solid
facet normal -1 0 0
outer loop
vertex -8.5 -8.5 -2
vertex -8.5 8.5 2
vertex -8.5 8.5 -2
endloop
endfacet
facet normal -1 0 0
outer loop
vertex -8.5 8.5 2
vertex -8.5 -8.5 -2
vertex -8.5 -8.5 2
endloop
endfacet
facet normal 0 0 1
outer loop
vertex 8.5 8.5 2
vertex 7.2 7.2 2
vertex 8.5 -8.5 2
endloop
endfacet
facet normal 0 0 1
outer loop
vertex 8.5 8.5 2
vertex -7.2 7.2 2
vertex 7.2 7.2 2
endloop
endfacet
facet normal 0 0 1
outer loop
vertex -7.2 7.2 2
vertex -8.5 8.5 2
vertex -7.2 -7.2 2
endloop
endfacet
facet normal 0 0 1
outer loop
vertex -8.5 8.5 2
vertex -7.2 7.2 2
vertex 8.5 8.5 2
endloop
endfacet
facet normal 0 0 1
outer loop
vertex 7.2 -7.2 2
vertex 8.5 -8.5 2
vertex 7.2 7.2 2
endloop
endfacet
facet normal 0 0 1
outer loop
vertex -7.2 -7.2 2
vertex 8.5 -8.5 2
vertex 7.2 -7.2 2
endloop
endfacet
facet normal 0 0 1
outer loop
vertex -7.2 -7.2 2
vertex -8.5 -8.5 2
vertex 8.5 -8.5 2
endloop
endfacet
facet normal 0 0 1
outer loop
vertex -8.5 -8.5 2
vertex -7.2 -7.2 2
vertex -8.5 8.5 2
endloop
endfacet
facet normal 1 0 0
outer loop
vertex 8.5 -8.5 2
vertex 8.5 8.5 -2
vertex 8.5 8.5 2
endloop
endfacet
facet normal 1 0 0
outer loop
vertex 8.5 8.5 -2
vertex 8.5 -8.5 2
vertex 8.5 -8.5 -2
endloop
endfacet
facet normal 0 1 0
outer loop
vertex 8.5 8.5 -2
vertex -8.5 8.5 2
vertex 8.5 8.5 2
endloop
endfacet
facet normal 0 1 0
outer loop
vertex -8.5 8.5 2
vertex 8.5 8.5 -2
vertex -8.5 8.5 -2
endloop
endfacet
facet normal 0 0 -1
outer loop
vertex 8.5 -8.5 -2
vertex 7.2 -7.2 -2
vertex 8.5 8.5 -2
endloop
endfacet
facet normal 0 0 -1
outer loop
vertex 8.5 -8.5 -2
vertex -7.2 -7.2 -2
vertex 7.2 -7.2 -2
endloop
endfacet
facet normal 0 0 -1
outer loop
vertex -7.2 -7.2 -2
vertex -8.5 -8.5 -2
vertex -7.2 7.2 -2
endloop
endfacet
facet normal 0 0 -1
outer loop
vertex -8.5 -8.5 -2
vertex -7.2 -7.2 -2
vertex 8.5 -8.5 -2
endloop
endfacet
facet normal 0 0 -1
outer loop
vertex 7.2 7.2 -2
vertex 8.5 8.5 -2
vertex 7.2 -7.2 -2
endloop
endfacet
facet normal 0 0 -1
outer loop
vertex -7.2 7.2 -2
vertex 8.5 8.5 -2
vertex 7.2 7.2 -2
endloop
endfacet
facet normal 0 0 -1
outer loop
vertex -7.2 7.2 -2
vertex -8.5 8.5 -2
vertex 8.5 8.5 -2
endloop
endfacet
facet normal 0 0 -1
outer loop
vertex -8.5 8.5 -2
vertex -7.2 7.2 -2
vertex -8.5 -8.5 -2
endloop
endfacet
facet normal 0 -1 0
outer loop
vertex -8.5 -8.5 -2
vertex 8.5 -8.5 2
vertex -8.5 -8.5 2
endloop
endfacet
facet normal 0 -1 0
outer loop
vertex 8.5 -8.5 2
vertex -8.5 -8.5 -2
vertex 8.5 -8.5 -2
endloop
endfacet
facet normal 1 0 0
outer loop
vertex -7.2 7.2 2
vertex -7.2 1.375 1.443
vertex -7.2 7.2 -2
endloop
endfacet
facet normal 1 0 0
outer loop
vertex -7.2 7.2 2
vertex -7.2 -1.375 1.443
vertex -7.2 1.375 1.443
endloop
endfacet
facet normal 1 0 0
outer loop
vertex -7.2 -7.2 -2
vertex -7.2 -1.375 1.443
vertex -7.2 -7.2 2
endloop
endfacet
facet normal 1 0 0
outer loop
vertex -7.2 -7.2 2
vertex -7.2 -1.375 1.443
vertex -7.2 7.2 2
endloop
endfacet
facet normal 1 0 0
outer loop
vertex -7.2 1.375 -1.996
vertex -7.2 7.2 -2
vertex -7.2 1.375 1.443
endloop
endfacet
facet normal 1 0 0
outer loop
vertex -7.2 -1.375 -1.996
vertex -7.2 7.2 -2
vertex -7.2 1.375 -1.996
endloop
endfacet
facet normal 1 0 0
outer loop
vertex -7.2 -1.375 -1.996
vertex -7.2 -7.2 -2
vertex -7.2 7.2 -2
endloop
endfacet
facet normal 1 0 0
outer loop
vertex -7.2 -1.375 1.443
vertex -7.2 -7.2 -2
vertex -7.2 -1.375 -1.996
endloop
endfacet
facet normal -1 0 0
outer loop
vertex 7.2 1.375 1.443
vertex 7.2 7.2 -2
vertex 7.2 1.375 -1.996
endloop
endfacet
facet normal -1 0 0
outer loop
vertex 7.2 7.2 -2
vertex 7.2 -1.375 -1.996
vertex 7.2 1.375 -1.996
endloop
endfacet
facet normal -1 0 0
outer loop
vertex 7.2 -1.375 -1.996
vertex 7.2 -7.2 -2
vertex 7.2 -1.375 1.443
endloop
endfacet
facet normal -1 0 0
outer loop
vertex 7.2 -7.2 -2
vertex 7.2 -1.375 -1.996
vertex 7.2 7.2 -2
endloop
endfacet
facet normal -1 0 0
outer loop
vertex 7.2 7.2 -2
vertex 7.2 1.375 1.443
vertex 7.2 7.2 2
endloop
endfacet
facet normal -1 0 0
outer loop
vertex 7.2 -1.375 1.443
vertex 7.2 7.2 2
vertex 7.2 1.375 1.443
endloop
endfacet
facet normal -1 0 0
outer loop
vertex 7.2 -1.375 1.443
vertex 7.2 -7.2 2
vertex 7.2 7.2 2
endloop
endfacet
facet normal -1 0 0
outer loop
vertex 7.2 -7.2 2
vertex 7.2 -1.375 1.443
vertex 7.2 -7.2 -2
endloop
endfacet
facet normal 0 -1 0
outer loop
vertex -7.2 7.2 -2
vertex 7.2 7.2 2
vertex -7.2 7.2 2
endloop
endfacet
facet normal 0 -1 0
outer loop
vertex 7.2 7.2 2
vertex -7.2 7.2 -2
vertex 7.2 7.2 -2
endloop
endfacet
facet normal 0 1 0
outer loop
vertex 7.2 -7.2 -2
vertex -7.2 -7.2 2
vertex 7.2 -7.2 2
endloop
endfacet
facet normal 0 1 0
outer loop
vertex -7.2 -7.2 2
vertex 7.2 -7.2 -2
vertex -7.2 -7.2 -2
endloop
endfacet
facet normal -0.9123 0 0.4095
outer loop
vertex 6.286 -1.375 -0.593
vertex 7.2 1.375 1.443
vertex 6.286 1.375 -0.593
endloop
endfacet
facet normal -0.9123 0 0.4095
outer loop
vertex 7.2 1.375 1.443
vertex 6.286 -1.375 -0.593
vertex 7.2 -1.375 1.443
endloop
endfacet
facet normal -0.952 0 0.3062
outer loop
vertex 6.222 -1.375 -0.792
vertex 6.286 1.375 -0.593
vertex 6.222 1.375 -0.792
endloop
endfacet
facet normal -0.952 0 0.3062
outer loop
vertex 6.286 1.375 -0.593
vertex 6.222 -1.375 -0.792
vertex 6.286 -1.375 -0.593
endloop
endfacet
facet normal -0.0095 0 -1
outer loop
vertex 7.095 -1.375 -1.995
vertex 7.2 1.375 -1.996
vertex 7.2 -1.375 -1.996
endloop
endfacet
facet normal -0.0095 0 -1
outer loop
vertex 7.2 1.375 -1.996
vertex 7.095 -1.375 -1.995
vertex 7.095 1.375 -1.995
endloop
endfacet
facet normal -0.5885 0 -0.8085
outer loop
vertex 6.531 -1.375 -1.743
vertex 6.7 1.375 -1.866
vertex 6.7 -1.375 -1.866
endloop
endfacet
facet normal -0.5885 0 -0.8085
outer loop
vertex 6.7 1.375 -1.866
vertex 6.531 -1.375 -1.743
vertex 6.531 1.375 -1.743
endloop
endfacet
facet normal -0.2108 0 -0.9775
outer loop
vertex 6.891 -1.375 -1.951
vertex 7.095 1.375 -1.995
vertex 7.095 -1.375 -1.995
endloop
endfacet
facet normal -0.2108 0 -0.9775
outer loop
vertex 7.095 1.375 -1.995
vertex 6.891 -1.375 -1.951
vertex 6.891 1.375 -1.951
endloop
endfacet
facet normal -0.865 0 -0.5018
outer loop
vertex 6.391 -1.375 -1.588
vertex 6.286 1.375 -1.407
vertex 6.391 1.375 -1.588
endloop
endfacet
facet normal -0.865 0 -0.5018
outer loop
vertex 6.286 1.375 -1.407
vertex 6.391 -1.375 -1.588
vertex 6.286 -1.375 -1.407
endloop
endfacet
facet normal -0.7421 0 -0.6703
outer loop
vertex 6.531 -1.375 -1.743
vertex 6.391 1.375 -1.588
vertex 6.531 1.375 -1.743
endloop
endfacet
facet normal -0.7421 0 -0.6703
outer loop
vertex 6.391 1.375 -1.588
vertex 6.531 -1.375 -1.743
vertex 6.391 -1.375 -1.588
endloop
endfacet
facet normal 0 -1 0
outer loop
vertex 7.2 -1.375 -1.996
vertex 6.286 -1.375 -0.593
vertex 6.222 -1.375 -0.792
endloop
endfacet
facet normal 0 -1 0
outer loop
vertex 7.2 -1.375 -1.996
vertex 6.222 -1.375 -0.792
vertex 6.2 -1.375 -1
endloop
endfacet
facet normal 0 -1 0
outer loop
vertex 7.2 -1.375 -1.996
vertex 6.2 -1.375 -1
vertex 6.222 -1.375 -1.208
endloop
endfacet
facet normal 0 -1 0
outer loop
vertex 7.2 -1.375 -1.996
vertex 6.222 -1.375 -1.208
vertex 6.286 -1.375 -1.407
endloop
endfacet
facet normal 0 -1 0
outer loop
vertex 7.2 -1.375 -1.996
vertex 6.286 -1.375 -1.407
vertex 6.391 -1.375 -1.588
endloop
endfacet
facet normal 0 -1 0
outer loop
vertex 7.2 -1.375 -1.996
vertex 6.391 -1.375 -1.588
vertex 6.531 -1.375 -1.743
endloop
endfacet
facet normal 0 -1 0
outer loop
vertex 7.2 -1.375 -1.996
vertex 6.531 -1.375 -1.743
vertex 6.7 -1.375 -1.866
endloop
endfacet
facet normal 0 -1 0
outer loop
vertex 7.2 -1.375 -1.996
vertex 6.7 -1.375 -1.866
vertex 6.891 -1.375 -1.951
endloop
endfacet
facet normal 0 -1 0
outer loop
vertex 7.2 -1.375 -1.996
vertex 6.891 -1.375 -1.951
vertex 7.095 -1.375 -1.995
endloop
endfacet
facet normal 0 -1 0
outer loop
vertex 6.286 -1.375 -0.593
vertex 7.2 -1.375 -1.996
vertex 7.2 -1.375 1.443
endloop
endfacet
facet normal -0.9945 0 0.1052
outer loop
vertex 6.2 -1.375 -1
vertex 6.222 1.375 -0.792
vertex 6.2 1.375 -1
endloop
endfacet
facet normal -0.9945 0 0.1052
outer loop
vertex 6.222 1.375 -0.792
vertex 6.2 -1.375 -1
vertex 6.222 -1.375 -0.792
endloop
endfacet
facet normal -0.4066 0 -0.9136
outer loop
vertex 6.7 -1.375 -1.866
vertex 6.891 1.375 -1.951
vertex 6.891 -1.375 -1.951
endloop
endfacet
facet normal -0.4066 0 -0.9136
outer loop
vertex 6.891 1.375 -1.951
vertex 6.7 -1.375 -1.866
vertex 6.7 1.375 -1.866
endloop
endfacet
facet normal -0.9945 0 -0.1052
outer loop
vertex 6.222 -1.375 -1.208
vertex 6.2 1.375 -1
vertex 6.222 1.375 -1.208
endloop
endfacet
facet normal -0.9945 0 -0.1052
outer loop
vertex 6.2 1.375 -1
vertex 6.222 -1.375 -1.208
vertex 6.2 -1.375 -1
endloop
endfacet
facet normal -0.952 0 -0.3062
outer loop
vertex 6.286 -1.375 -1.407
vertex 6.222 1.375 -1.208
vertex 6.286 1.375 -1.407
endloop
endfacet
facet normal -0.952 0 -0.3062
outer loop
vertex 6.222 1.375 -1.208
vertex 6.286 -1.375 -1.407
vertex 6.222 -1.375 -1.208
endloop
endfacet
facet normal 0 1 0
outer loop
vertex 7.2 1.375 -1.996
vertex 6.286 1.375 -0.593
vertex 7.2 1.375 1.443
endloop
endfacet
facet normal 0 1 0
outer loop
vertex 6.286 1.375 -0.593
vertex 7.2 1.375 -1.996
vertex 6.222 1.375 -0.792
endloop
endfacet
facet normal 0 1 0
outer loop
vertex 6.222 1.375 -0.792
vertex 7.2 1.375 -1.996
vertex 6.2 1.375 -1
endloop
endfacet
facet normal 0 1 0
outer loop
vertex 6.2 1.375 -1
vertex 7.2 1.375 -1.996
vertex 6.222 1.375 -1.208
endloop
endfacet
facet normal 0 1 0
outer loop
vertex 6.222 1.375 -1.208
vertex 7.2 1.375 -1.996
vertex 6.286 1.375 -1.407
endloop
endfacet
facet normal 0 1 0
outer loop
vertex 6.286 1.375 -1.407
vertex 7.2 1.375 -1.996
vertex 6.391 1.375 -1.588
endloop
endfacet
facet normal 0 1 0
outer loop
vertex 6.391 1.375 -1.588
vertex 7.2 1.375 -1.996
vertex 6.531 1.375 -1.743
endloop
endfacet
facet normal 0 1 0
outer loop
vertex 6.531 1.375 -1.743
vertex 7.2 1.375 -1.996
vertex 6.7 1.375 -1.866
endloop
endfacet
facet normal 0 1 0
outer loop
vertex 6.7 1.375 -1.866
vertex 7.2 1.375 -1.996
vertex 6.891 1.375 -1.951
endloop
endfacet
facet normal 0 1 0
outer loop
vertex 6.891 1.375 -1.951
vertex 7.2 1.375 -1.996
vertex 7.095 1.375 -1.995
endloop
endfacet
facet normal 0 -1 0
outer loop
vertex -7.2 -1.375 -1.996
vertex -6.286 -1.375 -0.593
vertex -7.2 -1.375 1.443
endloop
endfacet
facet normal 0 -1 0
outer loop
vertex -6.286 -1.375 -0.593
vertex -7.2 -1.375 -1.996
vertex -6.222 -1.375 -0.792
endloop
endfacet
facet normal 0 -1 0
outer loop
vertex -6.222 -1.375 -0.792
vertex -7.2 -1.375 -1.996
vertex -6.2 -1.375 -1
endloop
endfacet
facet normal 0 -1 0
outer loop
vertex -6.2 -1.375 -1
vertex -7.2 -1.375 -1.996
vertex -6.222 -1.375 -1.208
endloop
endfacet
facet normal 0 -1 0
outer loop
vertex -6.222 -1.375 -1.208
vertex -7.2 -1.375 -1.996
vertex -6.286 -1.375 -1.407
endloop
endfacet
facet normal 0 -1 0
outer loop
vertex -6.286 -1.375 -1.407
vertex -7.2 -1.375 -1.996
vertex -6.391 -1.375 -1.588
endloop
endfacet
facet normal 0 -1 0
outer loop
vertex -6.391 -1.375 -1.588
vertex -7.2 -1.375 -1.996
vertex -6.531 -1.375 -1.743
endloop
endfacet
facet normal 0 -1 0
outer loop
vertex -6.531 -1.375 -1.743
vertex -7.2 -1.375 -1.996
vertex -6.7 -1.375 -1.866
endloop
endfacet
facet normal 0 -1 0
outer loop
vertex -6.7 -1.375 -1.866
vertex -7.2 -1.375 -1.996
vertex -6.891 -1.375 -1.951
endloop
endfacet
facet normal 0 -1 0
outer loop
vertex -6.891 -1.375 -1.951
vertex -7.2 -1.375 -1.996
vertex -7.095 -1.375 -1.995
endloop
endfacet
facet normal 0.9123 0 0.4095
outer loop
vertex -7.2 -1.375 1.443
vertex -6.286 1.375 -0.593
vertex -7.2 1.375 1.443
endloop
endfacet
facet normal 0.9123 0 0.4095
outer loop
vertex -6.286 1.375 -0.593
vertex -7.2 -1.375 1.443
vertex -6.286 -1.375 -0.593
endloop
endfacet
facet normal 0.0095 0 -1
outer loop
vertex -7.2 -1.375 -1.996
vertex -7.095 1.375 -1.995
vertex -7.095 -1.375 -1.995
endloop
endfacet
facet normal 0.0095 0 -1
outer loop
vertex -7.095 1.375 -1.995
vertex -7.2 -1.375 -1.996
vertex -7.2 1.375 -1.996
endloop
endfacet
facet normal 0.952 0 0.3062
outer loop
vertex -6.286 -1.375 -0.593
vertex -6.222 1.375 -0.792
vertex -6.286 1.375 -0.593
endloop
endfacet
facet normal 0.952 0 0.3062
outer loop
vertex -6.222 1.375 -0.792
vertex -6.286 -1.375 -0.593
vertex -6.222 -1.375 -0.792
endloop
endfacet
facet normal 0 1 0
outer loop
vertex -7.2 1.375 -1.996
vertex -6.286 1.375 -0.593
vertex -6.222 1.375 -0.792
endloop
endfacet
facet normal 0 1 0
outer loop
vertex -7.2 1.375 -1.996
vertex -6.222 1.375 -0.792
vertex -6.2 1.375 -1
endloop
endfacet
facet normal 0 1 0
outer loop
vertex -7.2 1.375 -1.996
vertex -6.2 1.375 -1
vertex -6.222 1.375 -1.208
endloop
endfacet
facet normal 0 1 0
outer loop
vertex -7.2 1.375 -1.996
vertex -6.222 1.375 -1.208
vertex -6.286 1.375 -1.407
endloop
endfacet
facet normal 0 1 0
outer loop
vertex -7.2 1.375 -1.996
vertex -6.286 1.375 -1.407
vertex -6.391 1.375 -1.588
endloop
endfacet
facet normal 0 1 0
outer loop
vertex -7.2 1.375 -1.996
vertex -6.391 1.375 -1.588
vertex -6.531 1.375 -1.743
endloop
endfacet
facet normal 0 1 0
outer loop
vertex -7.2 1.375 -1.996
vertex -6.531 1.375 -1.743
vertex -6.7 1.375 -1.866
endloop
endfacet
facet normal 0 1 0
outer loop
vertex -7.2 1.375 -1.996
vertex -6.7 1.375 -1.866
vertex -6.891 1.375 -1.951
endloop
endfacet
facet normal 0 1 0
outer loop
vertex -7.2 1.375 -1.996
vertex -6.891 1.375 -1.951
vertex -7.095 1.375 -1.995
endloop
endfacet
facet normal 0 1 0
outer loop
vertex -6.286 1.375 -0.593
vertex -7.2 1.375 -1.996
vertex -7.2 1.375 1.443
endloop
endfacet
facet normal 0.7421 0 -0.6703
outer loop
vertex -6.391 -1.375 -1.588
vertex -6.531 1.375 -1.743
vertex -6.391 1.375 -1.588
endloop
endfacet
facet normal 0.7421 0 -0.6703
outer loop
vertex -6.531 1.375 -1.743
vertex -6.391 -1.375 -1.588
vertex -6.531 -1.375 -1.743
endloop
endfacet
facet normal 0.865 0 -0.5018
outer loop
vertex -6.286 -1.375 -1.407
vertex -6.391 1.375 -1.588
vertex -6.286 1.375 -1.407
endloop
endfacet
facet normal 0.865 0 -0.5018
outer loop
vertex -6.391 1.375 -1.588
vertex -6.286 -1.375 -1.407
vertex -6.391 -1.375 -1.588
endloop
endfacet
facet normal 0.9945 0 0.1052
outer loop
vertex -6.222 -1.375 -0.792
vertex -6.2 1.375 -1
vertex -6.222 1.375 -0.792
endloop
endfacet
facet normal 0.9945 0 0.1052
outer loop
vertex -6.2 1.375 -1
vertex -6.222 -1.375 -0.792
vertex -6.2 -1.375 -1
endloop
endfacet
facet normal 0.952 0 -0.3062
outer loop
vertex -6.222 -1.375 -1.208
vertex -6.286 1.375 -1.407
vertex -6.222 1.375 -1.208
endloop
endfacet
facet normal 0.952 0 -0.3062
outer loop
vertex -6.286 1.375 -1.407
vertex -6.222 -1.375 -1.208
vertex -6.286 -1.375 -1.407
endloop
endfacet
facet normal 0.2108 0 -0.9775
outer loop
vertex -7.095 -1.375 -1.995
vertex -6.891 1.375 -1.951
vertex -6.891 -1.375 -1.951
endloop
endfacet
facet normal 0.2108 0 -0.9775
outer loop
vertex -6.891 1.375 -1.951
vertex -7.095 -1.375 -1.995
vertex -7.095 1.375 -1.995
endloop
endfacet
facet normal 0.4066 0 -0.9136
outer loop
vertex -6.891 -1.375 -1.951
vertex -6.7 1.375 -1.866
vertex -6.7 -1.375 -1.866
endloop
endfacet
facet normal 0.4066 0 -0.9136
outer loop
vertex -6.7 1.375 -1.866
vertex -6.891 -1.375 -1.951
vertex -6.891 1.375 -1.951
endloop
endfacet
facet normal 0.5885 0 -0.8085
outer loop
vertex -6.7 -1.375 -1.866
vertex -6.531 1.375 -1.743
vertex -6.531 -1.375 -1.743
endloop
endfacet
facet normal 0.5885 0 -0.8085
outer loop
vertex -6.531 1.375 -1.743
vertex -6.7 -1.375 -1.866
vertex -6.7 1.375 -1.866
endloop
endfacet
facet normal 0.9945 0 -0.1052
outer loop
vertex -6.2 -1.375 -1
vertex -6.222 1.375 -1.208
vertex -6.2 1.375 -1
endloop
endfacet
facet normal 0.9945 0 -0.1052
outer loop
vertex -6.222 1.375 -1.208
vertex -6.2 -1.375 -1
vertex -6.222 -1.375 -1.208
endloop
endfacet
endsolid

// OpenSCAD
union () {
  difference () {
    cube ([17, 17, 4], center=true);
    cube ([14.4, 14.4, 4.2], center=true);
  }
  union () {
    hull () {
      translate ([7.95, 0, 0]) {
        cube ([1, 2.75, 4], center=true);
      }
      translate ([7.2, 0, -1]) {
        rotate (a=90.0, v=[1, 0, 0]) {
          cylinder ($fn=30, h=2.75, r=1, center=true);
        }
      }
    }
    mirror ([0, 1, 0]) {
      mirror ([1, 0, 0]) {
        hull () {
          translate ([7.95, 0, 0]) {
            cube ([1, 2.75, 4], center=true);
          }
          translate ([7.2, 0, -1]) {
            rotate (a=90.0, v=[1, 0, 0]) {
              cylinder ($fn=30, h=2.75, r=1, center=true);
            }
          }
        }
      }
    }
  }
}
